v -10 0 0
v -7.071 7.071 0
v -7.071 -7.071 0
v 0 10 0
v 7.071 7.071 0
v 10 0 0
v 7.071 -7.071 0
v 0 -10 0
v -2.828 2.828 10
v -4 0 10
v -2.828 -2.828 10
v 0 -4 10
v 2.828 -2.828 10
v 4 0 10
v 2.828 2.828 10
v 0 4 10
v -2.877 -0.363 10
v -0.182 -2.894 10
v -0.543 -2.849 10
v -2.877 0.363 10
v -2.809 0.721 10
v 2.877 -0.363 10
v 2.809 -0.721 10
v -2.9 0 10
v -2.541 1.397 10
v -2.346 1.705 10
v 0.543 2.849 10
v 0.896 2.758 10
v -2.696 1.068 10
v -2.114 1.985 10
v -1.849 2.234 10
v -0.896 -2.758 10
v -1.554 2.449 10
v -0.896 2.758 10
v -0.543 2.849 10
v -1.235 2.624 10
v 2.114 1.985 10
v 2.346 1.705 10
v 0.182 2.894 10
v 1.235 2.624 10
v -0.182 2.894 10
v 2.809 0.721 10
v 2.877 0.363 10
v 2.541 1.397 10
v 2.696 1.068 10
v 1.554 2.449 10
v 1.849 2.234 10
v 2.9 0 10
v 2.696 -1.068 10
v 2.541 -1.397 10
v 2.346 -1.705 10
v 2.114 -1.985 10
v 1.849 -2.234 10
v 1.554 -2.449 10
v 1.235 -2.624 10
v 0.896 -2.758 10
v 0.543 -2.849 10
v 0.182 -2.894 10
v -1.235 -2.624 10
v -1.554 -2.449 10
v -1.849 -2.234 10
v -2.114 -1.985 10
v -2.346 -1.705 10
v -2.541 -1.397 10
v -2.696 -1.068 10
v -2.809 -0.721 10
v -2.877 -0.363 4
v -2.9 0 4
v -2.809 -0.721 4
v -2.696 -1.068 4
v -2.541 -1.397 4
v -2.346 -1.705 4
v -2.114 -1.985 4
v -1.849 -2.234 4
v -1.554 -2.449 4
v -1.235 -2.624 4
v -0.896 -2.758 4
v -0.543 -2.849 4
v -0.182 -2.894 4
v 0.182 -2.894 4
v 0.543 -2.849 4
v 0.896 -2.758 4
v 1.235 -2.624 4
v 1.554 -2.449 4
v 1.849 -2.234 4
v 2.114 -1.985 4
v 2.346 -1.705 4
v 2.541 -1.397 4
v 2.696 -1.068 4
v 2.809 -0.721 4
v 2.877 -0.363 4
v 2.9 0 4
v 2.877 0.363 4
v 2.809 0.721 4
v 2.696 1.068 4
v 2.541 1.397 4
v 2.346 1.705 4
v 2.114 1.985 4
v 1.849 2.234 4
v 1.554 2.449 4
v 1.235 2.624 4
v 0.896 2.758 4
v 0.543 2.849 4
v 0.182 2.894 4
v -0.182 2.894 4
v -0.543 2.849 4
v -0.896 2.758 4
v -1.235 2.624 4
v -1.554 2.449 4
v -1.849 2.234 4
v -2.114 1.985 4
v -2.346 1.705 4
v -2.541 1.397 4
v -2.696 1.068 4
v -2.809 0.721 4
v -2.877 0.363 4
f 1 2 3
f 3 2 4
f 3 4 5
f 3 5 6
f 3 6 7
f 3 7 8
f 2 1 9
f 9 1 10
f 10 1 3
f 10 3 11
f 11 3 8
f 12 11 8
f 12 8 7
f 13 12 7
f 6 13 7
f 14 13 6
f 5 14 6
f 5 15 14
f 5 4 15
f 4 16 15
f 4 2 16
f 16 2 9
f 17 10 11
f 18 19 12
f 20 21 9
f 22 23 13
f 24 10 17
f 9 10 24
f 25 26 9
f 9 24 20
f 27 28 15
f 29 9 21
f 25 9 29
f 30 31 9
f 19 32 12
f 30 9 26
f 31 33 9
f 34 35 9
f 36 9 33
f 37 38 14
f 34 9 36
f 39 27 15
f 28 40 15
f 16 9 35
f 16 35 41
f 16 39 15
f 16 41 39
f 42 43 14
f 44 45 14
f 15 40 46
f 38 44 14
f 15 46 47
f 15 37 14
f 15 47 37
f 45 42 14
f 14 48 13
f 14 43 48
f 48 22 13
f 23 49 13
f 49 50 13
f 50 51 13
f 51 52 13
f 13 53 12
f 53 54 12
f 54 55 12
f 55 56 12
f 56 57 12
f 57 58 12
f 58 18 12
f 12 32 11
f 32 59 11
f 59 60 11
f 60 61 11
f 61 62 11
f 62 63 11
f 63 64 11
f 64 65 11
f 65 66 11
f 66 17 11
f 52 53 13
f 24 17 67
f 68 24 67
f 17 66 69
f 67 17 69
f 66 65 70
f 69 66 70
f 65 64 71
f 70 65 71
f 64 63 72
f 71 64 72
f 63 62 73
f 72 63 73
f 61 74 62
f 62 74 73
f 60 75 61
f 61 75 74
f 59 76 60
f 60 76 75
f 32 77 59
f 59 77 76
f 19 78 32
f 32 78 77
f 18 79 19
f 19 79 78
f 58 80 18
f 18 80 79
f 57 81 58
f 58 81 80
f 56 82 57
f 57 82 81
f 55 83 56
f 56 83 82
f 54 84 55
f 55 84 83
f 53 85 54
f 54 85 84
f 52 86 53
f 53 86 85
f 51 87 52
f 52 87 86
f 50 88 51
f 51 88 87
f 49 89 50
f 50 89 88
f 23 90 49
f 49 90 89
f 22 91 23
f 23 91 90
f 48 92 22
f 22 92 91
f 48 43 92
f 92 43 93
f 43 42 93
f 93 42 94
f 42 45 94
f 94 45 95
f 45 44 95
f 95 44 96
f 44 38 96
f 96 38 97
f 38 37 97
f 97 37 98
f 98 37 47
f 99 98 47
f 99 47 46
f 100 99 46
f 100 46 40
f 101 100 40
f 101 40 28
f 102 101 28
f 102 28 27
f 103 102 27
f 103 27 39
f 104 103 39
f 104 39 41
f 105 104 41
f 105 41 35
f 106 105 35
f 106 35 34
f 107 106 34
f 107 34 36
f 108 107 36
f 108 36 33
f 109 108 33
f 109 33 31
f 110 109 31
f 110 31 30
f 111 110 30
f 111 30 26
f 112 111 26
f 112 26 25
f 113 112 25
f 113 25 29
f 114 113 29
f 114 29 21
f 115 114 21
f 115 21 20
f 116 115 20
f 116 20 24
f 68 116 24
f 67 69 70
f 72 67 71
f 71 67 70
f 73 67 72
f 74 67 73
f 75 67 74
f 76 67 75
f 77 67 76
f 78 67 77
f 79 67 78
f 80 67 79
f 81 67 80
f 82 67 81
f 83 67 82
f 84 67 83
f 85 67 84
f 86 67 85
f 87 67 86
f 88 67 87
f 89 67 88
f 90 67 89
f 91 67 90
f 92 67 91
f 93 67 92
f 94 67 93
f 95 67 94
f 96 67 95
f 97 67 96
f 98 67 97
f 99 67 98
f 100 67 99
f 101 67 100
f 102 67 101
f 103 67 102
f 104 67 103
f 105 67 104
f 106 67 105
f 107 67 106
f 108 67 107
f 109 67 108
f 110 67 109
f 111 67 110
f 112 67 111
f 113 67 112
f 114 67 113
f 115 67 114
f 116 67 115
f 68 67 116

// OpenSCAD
//****************************************************************
//*  Name    : Jack Feet                                         *
//*  Author  : Robert Joseph Korn                                *
//*  Notice  : Copyright (c) 2015 Open Valley Consulting Corp    *
//*          : All Rights Reserved                               *
//*  Date    : 3/12/15                                           *
//*  Version : 1.0                                               *
//*  Notes   : Simple feet to protect CNC table                  *
//*          :                                                   *
//****************************************************************


difference(){
cylinder (r1=10,r2=4,h=10, $fn=8);
translate(v=[0,0,4]) cylinder(r=2.9,h=6, $fn=50);
}
